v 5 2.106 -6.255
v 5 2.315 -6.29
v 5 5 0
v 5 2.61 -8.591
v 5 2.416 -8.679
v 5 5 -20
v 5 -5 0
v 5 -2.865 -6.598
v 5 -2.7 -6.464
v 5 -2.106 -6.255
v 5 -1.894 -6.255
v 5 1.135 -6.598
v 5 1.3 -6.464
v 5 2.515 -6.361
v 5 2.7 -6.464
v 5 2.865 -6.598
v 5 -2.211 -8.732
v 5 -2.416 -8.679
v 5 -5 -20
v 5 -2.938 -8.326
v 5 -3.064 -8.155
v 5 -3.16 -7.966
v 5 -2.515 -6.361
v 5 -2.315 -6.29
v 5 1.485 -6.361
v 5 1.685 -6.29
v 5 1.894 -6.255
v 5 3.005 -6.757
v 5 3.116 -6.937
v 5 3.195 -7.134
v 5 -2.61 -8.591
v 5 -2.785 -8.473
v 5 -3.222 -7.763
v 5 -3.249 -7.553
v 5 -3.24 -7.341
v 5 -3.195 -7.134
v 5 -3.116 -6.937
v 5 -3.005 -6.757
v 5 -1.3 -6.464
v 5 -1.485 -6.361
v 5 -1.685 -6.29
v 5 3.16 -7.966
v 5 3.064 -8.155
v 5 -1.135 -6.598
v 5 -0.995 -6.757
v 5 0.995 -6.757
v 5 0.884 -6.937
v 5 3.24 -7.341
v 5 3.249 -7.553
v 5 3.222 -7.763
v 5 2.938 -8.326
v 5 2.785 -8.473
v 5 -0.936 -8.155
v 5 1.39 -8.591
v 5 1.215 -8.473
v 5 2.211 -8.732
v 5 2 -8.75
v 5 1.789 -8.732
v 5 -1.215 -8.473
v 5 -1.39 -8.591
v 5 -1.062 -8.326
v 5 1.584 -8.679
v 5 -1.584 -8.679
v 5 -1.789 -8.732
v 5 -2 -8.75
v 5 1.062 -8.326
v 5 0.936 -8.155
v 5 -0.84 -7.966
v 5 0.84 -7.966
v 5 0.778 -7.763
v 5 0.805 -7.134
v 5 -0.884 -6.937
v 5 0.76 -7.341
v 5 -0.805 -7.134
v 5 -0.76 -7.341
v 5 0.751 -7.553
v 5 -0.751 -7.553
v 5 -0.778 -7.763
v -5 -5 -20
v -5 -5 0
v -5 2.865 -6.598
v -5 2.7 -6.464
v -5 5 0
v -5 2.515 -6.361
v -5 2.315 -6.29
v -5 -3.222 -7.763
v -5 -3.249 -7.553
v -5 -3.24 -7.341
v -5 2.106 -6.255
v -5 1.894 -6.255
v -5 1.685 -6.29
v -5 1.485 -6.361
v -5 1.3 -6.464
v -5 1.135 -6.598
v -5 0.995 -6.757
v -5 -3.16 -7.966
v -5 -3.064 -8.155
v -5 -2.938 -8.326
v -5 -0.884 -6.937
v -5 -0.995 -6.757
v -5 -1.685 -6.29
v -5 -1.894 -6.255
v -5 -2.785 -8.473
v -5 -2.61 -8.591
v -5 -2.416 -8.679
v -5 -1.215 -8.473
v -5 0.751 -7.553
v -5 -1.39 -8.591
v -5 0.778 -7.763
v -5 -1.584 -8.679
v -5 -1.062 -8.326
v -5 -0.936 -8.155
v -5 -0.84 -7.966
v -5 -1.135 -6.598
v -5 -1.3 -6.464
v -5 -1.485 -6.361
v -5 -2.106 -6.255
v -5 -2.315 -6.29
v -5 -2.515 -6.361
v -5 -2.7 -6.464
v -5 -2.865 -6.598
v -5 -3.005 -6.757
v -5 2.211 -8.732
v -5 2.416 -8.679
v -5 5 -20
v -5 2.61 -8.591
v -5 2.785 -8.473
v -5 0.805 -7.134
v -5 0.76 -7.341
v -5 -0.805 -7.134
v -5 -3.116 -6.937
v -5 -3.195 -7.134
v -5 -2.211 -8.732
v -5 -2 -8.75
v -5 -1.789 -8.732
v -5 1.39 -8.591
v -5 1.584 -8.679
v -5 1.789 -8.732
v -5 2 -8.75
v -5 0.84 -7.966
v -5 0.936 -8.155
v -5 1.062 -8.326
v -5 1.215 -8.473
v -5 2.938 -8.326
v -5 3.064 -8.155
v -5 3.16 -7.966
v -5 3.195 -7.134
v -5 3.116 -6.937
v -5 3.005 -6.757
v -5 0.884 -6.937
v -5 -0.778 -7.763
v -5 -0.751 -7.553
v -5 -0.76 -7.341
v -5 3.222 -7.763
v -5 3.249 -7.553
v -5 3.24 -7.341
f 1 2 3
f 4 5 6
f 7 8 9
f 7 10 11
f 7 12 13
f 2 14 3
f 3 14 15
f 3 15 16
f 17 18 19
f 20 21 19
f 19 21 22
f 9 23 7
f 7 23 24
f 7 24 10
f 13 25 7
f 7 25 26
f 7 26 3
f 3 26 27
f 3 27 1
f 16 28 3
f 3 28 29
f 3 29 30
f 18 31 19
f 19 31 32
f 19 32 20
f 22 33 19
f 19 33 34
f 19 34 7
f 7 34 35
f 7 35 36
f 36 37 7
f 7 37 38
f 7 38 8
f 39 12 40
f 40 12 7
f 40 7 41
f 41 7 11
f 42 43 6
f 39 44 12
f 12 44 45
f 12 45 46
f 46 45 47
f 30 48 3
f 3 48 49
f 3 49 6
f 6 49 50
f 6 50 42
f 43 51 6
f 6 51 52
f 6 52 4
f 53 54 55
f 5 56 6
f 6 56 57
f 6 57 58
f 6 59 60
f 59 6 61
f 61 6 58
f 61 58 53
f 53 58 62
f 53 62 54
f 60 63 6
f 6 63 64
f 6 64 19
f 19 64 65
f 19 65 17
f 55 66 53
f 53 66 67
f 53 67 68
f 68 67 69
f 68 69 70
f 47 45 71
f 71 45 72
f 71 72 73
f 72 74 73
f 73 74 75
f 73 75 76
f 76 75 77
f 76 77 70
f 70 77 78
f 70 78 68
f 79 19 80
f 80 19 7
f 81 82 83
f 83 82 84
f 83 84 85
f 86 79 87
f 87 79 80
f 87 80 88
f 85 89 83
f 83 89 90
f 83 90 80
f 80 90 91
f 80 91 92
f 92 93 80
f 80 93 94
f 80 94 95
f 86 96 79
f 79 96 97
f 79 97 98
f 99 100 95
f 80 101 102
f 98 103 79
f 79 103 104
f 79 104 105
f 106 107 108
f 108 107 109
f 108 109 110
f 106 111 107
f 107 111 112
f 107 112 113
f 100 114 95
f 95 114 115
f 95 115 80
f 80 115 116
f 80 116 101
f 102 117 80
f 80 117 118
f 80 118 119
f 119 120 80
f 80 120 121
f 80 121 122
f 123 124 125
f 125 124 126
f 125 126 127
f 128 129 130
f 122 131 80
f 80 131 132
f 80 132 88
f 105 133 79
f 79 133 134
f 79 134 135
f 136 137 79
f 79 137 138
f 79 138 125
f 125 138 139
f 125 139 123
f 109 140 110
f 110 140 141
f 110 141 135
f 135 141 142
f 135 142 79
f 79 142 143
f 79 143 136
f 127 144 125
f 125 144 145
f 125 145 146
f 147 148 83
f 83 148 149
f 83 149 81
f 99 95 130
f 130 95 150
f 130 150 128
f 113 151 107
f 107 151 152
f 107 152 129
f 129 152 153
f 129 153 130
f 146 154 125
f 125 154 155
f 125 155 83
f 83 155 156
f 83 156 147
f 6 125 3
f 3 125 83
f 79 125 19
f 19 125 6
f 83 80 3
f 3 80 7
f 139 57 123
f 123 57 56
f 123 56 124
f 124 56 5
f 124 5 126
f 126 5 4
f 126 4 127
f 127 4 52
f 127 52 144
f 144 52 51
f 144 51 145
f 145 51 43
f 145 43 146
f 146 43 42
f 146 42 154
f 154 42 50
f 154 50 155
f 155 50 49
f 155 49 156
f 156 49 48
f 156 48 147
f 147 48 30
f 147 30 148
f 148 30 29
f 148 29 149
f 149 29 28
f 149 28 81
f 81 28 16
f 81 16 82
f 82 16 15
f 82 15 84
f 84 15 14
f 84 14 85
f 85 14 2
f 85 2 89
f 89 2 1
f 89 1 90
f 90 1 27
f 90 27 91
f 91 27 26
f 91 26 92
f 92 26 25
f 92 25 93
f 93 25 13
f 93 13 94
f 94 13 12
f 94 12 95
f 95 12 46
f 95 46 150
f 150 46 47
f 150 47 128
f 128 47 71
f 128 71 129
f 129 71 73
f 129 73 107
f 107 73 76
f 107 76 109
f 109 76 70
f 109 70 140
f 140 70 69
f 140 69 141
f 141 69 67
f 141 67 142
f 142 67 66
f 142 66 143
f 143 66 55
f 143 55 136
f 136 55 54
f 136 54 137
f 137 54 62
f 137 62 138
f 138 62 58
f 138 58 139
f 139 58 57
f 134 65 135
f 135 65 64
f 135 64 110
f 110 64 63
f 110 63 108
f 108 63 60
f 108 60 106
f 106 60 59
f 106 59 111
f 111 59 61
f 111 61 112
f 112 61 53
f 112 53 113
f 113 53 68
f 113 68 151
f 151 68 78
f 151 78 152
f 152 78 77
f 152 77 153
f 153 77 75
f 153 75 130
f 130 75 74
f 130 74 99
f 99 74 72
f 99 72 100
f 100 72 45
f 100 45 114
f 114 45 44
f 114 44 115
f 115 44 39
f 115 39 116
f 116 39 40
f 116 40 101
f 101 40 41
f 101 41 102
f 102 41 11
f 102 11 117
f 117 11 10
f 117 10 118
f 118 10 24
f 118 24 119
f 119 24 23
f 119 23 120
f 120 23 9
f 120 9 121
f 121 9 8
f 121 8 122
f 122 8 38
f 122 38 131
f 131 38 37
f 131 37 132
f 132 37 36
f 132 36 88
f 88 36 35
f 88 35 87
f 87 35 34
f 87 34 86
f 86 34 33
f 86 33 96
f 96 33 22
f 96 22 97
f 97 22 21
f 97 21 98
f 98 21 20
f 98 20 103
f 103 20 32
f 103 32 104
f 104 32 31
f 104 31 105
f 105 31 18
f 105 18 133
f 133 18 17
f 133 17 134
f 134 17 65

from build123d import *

# Parameters (mm, degrees)
SKETCH1_W           = 10
SKETCH1_H           = 10
BOSS_EXTRUDE1_DEPTH = 20
SKETCH3_R           = 1.25
CUT_EXTRUDE6_DEPTH  = 10


with BuildPart() as part:
    # Sketch1 → Boss-Extrude1 (new body)
    with BuildSketch(Plane.XY):
        Rectangle(SKETCH1_W, SKETCH1_H)
    extrude(amount=-BOSS_EXTRUDE1_DEPTH)

    # Sketch3 → Cut-Extrude6 (cut)
    with BuildSketch(Plane(origin=(5, 0, 0), x_dir=(0, 0, -1), z_dir=(1, 0, 0))):
        with Locations((7.5, 2)):
            Circle(SKETCH3_R)
    cut_extrude6 = extrude(amount=-CUT_EXTRUDE6_DEPTH, mode=Mode.SUBTRACT)

    # Mirror1: Cut-Extrude6 across plane
    add(cut_extrude6.mirror(Plane.ZX), mode=Mode.SUBTRACT)


solid = part.part
